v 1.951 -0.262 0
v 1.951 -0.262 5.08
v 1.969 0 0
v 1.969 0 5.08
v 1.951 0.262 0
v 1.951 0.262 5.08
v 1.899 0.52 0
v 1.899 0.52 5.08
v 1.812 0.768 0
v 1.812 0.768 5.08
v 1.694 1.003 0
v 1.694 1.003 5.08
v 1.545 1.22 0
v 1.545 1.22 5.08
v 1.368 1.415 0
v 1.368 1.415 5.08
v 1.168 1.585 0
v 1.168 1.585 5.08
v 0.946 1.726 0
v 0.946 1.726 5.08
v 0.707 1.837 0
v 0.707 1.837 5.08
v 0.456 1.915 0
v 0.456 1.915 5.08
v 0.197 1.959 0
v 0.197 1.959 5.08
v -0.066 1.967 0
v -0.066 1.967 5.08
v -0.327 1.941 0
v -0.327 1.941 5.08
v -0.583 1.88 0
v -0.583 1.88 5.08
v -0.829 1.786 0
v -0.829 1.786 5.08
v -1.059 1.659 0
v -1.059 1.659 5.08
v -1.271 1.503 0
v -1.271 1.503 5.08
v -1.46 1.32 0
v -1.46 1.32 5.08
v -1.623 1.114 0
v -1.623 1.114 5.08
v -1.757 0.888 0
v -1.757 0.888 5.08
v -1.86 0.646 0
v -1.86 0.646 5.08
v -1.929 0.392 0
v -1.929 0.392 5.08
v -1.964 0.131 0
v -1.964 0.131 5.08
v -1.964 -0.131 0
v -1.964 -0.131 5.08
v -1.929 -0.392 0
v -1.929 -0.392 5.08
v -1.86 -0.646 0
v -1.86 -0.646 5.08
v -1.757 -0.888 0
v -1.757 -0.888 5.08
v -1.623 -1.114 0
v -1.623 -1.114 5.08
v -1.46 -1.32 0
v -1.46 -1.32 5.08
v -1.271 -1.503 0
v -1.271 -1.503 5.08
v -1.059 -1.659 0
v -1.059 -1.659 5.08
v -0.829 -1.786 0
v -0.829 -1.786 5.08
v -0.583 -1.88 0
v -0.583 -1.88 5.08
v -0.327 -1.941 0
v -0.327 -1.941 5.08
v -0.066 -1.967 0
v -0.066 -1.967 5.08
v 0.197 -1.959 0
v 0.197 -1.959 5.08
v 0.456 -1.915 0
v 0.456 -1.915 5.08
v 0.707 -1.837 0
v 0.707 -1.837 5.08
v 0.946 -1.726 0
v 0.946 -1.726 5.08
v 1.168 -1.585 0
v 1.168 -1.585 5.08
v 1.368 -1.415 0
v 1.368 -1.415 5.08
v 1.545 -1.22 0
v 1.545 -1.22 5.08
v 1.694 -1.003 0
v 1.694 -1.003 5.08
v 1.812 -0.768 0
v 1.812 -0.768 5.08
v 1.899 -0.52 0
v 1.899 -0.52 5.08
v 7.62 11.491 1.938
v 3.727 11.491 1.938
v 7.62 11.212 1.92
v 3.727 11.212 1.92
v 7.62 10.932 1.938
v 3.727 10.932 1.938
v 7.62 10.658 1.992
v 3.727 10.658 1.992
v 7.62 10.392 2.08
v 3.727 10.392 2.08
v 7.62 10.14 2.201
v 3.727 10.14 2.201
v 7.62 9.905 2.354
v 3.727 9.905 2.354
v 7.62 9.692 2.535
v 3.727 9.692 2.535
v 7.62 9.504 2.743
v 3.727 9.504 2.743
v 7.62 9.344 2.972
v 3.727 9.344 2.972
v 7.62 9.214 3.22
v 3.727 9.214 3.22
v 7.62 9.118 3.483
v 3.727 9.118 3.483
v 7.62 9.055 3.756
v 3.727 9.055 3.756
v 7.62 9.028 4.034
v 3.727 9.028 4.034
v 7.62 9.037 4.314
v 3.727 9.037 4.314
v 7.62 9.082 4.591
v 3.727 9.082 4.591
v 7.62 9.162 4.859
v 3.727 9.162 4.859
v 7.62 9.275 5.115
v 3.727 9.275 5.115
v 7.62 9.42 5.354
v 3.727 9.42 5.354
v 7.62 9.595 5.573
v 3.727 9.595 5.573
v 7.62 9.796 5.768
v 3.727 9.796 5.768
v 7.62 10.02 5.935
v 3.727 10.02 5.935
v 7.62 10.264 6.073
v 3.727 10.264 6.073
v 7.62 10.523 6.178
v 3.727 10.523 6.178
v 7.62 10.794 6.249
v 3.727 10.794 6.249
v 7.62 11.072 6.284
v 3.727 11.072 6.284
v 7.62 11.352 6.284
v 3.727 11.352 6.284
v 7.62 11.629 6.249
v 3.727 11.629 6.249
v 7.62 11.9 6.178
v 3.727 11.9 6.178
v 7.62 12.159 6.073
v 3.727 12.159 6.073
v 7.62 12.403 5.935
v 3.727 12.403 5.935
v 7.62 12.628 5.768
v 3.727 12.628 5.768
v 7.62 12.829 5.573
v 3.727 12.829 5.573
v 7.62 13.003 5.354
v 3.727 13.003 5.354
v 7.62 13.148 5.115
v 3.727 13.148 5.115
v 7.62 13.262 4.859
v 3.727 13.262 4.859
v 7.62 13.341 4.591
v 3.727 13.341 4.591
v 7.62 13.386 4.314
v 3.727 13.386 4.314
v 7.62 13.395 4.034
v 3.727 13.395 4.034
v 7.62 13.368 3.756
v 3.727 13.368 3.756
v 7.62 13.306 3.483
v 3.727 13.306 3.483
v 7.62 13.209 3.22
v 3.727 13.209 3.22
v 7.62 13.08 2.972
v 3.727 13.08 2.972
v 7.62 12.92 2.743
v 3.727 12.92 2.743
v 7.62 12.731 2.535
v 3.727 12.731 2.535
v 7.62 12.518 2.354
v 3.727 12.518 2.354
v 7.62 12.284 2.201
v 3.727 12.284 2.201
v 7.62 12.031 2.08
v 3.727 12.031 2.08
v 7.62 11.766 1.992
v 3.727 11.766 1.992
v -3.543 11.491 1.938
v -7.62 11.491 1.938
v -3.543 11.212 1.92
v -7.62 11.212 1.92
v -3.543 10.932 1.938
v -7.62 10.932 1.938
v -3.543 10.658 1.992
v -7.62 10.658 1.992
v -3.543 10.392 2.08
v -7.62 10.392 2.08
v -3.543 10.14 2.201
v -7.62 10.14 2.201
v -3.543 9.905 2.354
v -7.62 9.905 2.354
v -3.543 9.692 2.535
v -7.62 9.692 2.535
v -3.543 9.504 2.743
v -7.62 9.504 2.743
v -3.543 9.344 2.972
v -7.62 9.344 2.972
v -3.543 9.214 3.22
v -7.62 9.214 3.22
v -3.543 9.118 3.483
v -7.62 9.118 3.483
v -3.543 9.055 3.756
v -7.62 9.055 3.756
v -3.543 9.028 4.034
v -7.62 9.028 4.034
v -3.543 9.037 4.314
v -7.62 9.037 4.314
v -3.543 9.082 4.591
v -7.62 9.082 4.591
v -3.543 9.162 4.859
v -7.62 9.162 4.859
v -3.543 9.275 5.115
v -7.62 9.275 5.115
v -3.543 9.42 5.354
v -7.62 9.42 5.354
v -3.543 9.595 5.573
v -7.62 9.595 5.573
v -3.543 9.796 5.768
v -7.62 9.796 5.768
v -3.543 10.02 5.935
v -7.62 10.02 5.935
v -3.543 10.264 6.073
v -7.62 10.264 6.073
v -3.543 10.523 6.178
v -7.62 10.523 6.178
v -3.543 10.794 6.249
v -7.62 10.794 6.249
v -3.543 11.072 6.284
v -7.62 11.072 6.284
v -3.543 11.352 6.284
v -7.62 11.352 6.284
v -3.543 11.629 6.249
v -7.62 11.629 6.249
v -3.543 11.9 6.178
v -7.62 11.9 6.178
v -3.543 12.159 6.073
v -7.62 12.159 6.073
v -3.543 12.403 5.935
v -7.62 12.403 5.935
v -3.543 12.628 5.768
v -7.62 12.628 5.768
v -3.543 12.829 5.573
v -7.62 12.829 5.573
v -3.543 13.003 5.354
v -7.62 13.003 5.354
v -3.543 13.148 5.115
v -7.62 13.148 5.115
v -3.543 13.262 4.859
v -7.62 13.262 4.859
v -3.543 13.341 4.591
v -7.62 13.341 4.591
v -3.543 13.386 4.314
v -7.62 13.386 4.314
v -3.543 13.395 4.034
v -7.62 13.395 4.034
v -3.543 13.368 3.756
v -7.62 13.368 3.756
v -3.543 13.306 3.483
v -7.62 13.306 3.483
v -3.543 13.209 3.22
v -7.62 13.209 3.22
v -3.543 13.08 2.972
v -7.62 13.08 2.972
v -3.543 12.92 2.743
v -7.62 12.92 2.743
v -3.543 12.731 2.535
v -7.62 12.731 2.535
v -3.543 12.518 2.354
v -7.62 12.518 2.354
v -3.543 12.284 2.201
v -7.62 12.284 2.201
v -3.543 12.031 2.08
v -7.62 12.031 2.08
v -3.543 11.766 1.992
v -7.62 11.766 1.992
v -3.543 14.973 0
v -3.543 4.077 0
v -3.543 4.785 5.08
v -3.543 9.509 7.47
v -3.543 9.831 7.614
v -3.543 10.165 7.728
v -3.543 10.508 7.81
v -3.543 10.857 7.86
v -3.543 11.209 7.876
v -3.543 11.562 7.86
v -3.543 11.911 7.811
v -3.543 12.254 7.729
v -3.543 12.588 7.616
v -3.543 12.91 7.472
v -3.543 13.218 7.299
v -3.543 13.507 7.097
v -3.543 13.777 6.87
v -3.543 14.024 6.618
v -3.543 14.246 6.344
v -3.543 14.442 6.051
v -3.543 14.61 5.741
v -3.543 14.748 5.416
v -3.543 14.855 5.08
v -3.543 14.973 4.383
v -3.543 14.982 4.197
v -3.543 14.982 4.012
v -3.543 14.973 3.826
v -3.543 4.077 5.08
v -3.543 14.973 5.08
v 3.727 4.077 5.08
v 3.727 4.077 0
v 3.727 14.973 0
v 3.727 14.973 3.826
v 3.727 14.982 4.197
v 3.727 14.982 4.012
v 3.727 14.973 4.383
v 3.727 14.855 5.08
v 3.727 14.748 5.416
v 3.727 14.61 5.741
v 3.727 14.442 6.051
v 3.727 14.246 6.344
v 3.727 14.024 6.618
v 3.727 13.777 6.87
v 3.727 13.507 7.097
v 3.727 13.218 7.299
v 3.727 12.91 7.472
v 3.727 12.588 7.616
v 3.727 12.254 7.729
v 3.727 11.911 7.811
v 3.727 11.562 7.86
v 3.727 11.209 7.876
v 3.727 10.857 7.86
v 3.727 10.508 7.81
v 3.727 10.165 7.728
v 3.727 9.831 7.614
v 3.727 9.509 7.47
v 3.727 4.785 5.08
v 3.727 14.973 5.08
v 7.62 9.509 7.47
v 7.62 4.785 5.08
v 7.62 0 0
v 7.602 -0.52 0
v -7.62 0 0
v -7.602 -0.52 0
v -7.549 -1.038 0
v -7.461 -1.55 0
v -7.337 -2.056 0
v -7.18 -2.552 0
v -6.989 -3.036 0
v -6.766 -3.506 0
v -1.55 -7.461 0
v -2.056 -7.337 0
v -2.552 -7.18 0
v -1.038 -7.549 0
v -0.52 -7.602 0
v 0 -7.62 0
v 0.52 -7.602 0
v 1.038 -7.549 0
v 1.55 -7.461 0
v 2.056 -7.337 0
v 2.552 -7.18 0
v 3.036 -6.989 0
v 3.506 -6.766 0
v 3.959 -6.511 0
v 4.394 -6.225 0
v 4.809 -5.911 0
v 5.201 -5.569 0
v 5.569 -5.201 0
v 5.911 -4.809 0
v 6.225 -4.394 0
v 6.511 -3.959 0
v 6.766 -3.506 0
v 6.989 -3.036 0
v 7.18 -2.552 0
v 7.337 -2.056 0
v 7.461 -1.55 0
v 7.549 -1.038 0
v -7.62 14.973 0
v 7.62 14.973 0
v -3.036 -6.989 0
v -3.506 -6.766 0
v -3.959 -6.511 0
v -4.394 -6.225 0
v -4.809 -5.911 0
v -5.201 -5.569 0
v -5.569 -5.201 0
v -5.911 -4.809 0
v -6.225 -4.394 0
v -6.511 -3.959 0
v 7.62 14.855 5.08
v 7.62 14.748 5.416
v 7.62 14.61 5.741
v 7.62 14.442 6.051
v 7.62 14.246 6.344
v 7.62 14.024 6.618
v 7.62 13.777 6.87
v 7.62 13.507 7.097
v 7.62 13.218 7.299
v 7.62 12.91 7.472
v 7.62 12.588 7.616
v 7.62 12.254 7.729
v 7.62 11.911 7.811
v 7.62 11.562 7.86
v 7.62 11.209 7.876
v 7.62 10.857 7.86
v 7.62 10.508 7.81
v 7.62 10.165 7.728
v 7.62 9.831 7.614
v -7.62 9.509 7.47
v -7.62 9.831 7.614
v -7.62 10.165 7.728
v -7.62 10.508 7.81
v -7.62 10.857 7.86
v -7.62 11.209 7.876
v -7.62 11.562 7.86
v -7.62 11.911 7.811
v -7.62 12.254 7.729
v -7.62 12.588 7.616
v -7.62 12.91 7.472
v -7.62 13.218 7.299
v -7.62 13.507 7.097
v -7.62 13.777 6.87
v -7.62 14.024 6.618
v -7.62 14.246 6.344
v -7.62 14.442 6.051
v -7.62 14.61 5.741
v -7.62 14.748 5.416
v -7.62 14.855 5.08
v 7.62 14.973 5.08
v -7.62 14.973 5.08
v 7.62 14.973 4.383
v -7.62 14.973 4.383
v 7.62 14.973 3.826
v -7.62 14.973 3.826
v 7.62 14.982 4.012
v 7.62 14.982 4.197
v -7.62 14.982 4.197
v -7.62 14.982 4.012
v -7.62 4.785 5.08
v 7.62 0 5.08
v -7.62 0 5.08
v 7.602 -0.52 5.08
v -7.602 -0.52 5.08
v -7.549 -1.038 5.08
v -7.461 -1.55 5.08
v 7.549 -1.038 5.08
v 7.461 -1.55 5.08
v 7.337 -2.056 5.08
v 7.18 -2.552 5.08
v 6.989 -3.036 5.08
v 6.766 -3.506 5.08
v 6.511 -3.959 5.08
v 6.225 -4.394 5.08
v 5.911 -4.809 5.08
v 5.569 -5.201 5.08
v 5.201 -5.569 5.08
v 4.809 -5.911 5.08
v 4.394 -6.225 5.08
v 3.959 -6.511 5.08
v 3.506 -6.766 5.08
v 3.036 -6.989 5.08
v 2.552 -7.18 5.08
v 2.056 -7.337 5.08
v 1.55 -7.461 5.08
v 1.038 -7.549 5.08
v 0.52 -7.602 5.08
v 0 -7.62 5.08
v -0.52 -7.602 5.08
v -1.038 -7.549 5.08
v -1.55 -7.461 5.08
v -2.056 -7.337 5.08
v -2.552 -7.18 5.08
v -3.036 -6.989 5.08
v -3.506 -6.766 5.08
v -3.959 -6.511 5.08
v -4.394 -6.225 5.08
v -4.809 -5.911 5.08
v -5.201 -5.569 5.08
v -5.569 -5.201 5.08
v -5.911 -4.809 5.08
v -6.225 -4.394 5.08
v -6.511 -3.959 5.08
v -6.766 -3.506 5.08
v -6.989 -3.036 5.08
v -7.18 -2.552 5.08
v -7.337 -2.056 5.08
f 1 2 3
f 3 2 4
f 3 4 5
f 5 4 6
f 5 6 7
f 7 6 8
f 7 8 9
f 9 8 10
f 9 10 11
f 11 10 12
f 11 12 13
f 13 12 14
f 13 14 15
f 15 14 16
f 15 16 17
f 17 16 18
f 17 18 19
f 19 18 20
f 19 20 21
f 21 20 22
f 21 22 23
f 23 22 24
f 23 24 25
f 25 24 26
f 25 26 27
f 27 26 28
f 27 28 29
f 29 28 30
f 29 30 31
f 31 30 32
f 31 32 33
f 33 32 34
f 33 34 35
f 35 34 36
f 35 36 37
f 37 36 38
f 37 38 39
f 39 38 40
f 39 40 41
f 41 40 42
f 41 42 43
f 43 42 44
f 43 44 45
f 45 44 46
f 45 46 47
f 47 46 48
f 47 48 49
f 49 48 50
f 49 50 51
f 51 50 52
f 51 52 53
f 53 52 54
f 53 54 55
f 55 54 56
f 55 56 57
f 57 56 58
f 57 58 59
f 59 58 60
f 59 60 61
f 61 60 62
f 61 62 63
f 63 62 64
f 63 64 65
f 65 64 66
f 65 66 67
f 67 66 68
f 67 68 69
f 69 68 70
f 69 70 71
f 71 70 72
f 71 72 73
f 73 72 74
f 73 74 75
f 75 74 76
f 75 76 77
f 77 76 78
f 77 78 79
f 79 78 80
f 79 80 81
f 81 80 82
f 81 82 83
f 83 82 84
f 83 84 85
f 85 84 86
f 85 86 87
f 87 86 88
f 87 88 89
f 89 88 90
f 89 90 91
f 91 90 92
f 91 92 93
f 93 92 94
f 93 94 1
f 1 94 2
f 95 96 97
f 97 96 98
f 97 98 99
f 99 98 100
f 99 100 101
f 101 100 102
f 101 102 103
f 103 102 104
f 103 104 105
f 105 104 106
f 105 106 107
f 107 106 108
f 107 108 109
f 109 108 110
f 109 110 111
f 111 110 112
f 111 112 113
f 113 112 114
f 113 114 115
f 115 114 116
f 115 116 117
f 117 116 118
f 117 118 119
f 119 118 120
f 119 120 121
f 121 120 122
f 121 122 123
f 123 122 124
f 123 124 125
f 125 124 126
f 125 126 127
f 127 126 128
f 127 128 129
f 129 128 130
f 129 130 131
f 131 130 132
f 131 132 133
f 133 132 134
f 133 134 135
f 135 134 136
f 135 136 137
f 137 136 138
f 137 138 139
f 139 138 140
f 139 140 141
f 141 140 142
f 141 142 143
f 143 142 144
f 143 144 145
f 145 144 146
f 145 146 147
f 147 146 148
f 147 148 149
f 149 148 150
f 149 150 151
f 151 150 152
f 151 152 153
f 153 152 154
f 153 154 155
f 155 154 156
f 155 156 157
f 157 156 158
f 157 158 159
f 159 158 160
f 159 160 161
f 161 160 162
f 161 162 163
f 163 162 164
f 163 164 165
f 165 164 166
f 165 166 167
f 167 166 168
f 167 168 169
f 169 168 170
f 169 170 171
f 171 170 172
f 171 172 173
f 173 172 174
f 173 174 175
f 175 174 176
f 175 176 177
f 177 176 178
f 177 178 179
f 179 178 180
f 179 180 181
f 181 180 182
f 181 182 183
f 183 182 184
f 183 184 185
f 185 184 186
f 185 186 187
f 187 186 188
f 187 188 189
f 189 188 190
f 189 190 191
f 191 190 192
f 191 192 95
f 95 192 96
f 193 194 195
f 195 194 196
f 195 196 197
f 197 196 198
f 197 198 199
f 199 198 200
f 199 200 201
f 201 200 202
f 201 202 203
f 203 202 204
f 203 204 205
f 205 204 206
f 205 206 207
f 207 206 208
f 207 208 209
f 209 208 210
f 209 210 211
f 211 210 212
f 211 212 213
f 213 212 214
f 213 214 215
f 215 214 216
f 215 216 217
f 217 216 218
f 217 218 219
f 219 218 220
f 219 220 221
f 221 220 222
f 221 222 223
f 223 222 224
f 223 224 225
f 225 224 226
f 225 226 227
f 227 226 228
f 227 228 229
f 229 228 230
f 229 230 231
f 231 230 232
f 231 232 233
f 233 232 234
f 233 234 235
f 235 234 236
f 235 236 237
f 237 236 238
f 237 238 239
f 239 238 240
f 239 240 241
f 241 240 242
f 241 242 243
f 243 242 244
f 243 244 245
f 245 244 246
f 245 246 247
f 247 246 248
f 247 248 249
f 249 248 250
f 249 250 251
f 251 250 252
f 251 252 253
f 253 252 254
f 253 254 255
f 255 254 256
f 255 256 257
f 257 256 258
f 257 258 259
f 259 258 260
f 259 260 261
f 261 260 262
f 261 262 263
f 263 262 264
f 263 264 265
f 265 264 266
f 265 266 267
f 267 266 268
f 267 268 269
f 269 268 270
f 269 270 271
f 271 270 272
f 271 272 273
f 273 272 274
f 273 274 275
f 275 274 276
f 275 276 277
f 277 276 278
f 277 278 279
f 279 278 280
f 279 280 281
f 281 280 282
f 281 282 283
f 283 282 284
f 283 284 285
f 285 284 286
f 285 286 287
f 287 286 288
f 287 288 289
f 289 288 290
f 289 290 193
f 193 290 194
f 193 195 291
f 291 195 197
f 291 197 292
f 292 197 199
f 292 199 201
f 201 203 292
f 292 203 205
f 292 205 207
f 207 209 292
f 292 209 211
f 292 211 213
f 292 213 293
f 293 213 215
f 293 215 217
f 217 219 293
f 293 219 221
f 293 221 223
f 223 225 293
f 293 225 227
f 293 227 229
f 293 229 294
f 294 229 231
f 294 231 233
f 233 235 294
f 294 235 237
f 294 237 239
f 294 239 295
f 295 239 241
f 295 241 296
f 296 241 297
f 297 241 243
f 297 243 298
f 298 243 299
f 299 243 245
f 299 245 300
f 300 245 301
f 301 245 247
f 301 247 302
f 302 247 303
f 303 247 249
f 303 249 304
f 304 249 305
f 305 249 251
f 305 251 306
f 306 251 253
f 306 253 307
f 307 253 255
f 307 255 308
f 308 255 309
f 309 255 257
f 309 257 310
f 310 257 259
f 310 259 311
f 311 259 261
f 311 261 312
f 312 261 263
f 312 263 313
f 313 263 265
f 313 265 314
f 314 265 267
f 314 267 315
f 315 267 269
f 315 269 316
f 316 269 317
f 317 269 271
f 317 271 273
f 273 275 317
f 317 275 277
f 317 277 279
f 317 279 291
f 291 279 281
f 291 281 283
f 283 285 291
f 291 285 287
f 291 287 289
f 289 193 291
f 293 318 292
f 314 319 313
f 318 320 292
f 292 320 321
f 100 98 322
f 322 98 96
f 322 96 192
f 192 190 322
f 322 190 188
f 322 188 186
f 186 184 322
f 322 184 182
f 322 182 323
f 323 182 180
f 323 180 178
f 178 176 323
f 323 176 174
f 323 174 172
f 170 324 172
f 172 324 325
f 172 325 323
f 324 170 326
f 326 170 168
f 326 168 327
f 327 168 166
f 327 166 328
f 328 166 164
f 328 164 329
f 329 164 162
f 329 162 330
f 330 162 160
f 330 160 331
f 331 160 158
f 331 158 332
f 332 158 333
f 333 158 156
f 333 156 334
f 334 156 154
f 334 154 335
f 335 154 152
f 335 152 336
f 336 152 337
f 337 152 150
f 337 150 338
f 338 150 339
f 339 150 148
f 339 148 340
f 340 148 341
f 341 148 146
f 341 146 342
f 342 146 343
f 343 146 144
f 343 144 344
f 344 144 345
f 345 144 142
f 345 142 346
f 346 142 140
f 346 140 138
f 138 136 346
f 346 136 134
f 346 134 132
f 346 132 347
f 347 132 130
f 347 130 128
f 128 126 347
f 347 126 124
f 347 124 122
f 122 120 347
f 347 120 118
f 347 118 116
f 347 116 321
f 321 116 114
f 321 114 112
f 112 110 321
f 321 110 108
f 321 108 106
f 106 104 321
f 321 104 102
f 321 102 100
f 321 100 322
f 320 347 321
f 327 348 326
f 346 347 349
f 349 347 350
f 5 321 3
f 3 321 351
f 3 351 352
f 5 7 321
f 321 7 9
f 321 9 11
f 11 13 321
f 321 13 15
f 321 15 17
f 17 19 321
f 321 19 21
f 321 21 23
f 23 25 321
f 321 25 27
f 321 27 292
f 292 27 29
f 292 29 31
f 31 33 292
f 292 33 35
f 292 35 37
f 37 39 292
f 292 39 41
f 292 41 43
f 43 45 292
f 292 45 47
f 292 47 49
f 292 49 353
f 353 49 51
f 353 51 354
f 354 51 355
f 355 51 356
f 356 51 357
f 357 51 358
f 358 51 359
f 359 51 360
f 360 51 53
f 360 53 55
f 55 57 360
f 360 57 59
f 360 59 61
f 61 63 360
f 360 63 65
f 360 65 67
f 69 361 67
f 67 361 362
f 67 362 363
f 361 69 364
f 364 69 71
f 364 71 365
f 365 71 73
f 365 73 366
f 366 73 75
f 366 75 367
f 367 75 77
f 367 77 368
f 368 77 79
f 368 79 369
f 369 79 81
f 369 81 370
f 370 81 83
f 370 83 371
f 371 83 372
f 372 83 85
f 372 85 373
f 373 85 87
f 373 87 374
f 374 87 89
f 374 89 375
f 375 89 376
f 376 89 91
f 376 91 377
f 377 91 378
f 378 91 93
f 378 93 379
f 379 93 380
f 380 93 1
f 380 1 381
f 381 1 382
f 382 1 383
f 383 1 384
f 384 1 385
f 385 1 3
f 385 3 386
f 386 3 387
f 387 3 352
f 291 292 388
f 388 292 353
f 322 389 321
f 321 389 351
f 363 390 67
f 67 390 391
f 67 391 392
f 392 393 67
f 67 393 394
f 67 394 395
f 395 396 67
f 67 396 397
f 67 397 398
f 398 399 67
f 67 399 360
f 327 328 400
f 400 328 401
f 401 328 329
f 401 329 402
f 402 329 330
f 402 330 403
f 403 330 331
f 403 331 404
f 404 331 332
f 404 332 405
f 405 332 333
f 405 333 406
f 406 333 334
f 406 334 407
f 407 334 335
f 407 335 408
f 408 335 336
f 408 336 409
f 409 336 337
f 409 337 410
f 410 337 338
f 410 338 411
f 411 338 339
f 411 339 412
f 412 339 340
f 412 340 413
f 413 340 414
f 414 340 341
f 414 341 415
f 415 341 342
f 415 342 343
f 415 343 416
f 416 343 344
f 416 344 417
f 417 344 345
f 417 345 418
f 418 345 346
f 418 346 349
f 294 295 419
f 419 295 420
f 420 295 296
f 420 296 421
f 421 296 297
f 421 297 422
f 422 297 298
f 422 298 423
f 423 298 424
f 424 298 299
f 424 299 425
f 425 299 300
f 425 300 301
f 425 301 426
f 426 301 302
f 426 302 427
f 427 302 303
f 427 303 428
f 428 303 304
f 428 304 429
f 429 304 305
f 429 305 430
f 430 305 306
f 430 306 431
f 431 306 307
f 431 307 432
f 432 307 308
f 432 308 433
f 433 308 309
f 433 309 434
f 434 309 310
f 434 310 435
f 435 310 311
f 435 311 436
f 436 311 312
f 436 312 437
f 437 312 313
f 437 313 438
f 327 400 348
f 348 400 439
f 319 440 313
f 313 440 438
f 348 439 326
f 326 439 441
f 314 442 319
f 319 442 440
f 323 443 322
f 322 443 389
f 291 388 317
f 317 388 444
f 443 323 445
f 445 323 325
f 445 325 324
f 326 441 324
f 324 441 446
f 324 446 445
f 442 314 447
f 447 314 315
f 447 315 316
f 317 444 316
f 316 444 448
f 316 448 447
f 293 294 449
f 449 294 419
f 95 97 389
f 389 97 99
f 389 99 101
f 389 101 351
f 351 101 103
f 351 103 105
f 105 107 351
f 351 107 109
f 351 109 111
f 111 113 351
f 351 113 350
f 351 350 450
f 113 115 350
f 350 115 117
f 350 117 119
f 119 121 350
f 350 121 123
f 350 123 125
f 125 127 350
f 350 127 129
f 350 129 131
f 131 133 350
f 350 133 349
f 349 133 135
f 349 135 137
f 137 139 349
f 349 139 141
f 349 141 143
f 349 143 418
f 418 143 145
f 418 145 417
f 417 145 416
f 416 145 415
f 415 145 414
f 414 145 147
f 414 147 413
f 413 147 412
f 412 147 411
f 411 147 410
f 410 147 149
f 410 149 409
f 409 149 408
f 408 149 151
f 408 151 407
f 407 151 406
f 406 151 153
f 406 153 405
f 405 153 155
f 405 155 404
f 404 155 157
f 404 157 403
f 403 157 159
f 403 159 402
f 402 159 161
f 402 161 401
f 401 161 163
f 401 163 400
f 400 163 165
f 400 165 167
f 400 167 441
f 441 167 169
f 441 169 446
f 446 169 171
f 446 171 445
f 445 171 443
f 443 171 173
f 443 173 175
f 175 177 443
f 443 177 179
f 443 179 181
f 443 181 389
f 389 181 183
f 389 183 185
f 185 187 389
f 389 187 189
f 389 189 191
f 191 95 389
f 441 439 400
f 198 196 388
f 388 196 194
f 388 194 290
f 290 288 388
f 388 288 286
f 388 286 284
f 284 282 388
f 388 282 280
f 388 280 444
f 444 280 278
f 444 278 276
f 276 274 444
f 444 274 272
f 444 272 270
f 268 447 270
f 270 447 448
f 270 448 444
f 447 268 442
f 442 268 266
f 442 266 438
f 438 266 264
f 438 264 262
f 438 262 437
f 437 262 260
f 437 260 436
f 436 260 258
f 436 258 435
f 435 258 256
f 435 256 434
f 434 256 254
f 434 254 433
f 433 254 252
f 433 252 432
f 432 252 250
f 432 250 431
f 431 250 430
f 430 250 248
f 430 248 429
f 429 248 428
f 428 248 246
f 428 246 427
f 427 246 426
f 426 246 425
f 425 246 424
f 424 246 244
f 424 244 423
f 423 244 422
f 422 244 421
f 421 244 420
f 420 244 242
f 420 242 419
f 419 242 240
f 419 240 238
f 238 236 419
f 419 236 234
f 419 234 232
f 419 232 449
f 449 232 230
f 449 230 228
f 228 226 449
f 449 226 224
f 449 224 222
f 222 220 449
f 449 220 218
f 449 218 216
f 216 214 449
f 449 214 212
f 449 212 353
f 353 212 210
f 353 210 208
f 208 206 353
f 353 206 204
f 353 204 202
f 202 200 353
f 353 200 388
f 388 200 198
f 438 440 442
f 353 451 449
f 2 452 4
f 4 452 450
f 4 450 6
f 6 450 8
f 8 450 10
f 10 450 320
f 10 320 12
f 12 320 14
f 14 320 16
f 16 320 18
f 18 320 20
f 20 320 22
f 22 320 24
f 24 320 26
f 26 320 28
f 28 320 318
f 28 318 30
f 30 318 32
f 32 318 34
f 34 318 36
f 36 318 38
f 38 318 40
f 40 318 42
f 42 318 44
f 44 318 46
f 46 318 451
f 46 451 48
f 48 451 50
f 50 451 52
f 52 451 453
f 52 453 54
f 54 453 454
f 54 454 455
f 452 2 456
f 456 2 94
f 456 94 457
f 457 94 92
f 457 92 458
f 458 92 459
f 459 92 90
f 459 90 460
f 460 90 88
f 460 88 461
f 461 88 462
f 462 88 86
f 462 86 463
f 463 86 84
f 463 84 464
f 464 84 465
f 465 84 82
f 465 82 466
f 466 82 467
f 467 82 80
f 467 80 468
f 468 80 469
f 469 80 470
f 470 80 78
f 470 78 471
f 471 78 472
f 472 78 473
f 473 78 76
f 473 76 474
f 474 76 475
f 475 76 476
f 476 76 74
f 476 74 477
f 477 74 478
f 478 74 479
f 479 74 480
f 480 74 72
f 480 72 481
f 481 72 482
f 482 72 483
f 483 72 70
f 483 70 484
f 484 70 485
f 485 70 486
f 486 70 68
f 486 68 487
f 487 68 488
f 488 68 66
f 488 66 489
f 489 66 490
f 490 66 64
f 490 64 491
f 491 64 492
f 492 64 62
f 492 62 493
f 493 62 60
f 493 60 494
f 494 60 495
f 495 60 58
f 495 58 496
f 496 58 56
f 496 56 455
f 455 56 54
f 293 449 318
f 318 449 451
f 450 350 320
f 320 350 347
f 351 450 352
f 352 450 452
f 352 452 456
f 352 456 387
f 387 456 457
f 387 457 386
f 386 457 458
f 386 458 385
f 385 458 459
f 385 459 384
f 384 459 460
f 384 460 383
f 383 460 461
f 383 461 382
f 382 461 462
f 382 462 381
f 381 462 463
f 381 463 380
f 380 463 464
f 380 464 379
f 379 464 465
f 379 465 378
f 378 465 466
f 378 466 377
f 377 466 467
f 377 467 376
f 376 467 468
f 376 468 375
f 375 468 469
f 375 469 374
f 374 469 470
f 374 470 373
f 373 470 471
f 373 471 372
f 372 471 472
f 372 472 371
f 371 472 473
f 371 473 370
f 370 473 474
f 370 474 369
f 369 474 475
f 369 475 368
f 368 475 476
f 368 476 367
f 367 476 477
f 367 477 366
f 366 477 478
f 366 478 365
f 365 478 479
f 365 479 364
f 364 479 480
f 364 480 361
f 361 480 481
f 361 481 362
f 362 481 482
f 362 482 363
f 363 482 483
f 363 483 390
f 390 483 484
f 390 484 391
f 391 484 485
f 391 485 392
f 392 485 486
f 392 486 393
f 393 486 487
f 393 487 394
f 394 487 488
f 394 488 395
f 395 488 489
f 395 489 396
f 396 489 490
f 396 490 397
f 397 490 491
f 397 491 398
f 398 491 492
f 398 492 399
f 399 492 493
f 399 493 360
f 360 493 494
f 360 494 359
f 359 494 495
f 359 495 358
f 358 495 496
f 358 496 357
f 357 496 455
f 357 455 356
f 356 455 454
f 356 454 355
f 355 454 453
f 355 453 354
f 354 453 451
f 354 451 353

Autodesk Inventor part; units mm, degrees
ref_plane "YZ Plane" through (0, 0, 0) normal (1, 0, 0) x (0, 1, 0)
ref_plane "XZ Plane" through (0, 0, 0) normal (0, 1, 0) x (-1, 0, 0)
sketch "Sketch1" plane through (0, 0, 0) normal (0, 0, 1) x (1, 0, 0)
  arc A0 (-7.62, 0) -> (7.62, 0) centre (0, 0) ccw
  line L0 (1.0603, 17.7117) -> (-0.8757, 17.7117) construction
  line L1 (-7.62, 0) -> (7.62, 0)
  line L2 (7.62, 0) -> (7.62, 14.9733)
  line L3 (7.62, 14.9733) -> (-7.62, 14.9733)
  line L4 (-7.62, 14.9733) -> (-7.62, 0)
  dimension "d0" = 15.24
  dimension "d6" = 14.9733
ref_plane "Work Plane1" through (-4.0767, -4.0767, 5.08) normal (0, 0, -1) x (0, 1, 0)
extrude "Extrusion1" add sketch "Sketch1" along normal up to surface (5.08 mm away)
sketch "Sketch2" plane through (7.62, 0, 0) normal (1, 0, 0) x (0, 0, -1)
  circle A0 centre (-4.1045, 11.2117) radius 2 construction
  arc A1 (-0.3326, 11.2117) -> (-7.4701, 9.5087) centre (-4.1045, 11.2117) ccw
  circle A2 centre (-4.1045, 11.2117) radius 6.5 construction
  line L0 (-5.08, 0) -> (-5.08, 14.9733) projected
  line L1 (-5.08, 4.7853) -> (-7.4701, 9.5087)
  line L2 (-5.08, 4.7853) -> (-0.3326, 4.7853)
  line L3 (-0.3326, 4.7853) -> (-0.3326, 11.2117)
  point P0 (0, 0)
  dimension "d3" = 7.5438
extrude "Extrusion2" add sketch "Sketch2" against normal up to surface (15.24 mm away)
sketch "Sketch3" plane through (0, 0, 5.08) normal (0, 0, 1) x (1, 0, 0)
  circle A0 centre (0, 0) radius 4.0767 construction
  line L0 (3.0923, 15.6797) -> (3.0923, 6.7437) construction
  line L1 (-2.9077, 6.7437) -> (-2.9077, 15.6797) construction
  line L2 (3.7273, 15.6797) -> (3.7273, 6.7437) construction
  line L3 (-3.5427, 6.7437) -> (-3.5427, 15.6797) construction
  line L4 (7.62, 14.9733) -> (-7.62, 14.9733) projected
  line L5 (0, 4.0767) -> (3.7273, 4.0767)
  line L6 (3.7273, 4.0767) -> (3.7273, 14.9733)
  line L7 (0, 4.0767) -> (-3.5427, 4.0767)
  line L8 (-3.5427, 4.0767) -> (-3.5427, 14.9733)
  line L9 (3.7273, 15.2774) -> (-3.5427, 15.2774)
  line L10 (-3.5427, 14.9733) -> (-3.5427, 15.2774)
  line L11 (3.7273, 14.9733) -> (3.7273, 15.2774)
  dimension "d7" = 0.635
  dimension "d8" = 0.635
extrude "Extrusion3" cut sketch "Sketch3" along normal through all both and the other way through all
sketch "Sketch4" plane through (7.62, 0, 0) normal (1, 0, 0) x (0, 0, -1)
  arc A0 (-5.08, 14.8553) -> (-7.4701, 9.5087) centre (-4.1045, 11.2117) ccw construction
  circle A1 centre (-4.1045, 11.2117) radius 2.1844
  point P0 (0, 0)
  point P1 (-5.08, 7.5681)
  dimension "d11" = 4.3688
extrude "Extrusion4" cut sketch "Sketch4" against normal through all
sketch "Sketch5" plane through (0, 0, 5.08) normal (0, 0, 1) x (1, 0, 0)
  circle A0 centre (0, 0) radius 1.9685
  dimension "d14" = 3.937
extrude "Extrusion5" cut sketch "Sketch5" against normal through all
equation "\"d12\" = d11"
properties part number "omni wheel short low channel mount"
